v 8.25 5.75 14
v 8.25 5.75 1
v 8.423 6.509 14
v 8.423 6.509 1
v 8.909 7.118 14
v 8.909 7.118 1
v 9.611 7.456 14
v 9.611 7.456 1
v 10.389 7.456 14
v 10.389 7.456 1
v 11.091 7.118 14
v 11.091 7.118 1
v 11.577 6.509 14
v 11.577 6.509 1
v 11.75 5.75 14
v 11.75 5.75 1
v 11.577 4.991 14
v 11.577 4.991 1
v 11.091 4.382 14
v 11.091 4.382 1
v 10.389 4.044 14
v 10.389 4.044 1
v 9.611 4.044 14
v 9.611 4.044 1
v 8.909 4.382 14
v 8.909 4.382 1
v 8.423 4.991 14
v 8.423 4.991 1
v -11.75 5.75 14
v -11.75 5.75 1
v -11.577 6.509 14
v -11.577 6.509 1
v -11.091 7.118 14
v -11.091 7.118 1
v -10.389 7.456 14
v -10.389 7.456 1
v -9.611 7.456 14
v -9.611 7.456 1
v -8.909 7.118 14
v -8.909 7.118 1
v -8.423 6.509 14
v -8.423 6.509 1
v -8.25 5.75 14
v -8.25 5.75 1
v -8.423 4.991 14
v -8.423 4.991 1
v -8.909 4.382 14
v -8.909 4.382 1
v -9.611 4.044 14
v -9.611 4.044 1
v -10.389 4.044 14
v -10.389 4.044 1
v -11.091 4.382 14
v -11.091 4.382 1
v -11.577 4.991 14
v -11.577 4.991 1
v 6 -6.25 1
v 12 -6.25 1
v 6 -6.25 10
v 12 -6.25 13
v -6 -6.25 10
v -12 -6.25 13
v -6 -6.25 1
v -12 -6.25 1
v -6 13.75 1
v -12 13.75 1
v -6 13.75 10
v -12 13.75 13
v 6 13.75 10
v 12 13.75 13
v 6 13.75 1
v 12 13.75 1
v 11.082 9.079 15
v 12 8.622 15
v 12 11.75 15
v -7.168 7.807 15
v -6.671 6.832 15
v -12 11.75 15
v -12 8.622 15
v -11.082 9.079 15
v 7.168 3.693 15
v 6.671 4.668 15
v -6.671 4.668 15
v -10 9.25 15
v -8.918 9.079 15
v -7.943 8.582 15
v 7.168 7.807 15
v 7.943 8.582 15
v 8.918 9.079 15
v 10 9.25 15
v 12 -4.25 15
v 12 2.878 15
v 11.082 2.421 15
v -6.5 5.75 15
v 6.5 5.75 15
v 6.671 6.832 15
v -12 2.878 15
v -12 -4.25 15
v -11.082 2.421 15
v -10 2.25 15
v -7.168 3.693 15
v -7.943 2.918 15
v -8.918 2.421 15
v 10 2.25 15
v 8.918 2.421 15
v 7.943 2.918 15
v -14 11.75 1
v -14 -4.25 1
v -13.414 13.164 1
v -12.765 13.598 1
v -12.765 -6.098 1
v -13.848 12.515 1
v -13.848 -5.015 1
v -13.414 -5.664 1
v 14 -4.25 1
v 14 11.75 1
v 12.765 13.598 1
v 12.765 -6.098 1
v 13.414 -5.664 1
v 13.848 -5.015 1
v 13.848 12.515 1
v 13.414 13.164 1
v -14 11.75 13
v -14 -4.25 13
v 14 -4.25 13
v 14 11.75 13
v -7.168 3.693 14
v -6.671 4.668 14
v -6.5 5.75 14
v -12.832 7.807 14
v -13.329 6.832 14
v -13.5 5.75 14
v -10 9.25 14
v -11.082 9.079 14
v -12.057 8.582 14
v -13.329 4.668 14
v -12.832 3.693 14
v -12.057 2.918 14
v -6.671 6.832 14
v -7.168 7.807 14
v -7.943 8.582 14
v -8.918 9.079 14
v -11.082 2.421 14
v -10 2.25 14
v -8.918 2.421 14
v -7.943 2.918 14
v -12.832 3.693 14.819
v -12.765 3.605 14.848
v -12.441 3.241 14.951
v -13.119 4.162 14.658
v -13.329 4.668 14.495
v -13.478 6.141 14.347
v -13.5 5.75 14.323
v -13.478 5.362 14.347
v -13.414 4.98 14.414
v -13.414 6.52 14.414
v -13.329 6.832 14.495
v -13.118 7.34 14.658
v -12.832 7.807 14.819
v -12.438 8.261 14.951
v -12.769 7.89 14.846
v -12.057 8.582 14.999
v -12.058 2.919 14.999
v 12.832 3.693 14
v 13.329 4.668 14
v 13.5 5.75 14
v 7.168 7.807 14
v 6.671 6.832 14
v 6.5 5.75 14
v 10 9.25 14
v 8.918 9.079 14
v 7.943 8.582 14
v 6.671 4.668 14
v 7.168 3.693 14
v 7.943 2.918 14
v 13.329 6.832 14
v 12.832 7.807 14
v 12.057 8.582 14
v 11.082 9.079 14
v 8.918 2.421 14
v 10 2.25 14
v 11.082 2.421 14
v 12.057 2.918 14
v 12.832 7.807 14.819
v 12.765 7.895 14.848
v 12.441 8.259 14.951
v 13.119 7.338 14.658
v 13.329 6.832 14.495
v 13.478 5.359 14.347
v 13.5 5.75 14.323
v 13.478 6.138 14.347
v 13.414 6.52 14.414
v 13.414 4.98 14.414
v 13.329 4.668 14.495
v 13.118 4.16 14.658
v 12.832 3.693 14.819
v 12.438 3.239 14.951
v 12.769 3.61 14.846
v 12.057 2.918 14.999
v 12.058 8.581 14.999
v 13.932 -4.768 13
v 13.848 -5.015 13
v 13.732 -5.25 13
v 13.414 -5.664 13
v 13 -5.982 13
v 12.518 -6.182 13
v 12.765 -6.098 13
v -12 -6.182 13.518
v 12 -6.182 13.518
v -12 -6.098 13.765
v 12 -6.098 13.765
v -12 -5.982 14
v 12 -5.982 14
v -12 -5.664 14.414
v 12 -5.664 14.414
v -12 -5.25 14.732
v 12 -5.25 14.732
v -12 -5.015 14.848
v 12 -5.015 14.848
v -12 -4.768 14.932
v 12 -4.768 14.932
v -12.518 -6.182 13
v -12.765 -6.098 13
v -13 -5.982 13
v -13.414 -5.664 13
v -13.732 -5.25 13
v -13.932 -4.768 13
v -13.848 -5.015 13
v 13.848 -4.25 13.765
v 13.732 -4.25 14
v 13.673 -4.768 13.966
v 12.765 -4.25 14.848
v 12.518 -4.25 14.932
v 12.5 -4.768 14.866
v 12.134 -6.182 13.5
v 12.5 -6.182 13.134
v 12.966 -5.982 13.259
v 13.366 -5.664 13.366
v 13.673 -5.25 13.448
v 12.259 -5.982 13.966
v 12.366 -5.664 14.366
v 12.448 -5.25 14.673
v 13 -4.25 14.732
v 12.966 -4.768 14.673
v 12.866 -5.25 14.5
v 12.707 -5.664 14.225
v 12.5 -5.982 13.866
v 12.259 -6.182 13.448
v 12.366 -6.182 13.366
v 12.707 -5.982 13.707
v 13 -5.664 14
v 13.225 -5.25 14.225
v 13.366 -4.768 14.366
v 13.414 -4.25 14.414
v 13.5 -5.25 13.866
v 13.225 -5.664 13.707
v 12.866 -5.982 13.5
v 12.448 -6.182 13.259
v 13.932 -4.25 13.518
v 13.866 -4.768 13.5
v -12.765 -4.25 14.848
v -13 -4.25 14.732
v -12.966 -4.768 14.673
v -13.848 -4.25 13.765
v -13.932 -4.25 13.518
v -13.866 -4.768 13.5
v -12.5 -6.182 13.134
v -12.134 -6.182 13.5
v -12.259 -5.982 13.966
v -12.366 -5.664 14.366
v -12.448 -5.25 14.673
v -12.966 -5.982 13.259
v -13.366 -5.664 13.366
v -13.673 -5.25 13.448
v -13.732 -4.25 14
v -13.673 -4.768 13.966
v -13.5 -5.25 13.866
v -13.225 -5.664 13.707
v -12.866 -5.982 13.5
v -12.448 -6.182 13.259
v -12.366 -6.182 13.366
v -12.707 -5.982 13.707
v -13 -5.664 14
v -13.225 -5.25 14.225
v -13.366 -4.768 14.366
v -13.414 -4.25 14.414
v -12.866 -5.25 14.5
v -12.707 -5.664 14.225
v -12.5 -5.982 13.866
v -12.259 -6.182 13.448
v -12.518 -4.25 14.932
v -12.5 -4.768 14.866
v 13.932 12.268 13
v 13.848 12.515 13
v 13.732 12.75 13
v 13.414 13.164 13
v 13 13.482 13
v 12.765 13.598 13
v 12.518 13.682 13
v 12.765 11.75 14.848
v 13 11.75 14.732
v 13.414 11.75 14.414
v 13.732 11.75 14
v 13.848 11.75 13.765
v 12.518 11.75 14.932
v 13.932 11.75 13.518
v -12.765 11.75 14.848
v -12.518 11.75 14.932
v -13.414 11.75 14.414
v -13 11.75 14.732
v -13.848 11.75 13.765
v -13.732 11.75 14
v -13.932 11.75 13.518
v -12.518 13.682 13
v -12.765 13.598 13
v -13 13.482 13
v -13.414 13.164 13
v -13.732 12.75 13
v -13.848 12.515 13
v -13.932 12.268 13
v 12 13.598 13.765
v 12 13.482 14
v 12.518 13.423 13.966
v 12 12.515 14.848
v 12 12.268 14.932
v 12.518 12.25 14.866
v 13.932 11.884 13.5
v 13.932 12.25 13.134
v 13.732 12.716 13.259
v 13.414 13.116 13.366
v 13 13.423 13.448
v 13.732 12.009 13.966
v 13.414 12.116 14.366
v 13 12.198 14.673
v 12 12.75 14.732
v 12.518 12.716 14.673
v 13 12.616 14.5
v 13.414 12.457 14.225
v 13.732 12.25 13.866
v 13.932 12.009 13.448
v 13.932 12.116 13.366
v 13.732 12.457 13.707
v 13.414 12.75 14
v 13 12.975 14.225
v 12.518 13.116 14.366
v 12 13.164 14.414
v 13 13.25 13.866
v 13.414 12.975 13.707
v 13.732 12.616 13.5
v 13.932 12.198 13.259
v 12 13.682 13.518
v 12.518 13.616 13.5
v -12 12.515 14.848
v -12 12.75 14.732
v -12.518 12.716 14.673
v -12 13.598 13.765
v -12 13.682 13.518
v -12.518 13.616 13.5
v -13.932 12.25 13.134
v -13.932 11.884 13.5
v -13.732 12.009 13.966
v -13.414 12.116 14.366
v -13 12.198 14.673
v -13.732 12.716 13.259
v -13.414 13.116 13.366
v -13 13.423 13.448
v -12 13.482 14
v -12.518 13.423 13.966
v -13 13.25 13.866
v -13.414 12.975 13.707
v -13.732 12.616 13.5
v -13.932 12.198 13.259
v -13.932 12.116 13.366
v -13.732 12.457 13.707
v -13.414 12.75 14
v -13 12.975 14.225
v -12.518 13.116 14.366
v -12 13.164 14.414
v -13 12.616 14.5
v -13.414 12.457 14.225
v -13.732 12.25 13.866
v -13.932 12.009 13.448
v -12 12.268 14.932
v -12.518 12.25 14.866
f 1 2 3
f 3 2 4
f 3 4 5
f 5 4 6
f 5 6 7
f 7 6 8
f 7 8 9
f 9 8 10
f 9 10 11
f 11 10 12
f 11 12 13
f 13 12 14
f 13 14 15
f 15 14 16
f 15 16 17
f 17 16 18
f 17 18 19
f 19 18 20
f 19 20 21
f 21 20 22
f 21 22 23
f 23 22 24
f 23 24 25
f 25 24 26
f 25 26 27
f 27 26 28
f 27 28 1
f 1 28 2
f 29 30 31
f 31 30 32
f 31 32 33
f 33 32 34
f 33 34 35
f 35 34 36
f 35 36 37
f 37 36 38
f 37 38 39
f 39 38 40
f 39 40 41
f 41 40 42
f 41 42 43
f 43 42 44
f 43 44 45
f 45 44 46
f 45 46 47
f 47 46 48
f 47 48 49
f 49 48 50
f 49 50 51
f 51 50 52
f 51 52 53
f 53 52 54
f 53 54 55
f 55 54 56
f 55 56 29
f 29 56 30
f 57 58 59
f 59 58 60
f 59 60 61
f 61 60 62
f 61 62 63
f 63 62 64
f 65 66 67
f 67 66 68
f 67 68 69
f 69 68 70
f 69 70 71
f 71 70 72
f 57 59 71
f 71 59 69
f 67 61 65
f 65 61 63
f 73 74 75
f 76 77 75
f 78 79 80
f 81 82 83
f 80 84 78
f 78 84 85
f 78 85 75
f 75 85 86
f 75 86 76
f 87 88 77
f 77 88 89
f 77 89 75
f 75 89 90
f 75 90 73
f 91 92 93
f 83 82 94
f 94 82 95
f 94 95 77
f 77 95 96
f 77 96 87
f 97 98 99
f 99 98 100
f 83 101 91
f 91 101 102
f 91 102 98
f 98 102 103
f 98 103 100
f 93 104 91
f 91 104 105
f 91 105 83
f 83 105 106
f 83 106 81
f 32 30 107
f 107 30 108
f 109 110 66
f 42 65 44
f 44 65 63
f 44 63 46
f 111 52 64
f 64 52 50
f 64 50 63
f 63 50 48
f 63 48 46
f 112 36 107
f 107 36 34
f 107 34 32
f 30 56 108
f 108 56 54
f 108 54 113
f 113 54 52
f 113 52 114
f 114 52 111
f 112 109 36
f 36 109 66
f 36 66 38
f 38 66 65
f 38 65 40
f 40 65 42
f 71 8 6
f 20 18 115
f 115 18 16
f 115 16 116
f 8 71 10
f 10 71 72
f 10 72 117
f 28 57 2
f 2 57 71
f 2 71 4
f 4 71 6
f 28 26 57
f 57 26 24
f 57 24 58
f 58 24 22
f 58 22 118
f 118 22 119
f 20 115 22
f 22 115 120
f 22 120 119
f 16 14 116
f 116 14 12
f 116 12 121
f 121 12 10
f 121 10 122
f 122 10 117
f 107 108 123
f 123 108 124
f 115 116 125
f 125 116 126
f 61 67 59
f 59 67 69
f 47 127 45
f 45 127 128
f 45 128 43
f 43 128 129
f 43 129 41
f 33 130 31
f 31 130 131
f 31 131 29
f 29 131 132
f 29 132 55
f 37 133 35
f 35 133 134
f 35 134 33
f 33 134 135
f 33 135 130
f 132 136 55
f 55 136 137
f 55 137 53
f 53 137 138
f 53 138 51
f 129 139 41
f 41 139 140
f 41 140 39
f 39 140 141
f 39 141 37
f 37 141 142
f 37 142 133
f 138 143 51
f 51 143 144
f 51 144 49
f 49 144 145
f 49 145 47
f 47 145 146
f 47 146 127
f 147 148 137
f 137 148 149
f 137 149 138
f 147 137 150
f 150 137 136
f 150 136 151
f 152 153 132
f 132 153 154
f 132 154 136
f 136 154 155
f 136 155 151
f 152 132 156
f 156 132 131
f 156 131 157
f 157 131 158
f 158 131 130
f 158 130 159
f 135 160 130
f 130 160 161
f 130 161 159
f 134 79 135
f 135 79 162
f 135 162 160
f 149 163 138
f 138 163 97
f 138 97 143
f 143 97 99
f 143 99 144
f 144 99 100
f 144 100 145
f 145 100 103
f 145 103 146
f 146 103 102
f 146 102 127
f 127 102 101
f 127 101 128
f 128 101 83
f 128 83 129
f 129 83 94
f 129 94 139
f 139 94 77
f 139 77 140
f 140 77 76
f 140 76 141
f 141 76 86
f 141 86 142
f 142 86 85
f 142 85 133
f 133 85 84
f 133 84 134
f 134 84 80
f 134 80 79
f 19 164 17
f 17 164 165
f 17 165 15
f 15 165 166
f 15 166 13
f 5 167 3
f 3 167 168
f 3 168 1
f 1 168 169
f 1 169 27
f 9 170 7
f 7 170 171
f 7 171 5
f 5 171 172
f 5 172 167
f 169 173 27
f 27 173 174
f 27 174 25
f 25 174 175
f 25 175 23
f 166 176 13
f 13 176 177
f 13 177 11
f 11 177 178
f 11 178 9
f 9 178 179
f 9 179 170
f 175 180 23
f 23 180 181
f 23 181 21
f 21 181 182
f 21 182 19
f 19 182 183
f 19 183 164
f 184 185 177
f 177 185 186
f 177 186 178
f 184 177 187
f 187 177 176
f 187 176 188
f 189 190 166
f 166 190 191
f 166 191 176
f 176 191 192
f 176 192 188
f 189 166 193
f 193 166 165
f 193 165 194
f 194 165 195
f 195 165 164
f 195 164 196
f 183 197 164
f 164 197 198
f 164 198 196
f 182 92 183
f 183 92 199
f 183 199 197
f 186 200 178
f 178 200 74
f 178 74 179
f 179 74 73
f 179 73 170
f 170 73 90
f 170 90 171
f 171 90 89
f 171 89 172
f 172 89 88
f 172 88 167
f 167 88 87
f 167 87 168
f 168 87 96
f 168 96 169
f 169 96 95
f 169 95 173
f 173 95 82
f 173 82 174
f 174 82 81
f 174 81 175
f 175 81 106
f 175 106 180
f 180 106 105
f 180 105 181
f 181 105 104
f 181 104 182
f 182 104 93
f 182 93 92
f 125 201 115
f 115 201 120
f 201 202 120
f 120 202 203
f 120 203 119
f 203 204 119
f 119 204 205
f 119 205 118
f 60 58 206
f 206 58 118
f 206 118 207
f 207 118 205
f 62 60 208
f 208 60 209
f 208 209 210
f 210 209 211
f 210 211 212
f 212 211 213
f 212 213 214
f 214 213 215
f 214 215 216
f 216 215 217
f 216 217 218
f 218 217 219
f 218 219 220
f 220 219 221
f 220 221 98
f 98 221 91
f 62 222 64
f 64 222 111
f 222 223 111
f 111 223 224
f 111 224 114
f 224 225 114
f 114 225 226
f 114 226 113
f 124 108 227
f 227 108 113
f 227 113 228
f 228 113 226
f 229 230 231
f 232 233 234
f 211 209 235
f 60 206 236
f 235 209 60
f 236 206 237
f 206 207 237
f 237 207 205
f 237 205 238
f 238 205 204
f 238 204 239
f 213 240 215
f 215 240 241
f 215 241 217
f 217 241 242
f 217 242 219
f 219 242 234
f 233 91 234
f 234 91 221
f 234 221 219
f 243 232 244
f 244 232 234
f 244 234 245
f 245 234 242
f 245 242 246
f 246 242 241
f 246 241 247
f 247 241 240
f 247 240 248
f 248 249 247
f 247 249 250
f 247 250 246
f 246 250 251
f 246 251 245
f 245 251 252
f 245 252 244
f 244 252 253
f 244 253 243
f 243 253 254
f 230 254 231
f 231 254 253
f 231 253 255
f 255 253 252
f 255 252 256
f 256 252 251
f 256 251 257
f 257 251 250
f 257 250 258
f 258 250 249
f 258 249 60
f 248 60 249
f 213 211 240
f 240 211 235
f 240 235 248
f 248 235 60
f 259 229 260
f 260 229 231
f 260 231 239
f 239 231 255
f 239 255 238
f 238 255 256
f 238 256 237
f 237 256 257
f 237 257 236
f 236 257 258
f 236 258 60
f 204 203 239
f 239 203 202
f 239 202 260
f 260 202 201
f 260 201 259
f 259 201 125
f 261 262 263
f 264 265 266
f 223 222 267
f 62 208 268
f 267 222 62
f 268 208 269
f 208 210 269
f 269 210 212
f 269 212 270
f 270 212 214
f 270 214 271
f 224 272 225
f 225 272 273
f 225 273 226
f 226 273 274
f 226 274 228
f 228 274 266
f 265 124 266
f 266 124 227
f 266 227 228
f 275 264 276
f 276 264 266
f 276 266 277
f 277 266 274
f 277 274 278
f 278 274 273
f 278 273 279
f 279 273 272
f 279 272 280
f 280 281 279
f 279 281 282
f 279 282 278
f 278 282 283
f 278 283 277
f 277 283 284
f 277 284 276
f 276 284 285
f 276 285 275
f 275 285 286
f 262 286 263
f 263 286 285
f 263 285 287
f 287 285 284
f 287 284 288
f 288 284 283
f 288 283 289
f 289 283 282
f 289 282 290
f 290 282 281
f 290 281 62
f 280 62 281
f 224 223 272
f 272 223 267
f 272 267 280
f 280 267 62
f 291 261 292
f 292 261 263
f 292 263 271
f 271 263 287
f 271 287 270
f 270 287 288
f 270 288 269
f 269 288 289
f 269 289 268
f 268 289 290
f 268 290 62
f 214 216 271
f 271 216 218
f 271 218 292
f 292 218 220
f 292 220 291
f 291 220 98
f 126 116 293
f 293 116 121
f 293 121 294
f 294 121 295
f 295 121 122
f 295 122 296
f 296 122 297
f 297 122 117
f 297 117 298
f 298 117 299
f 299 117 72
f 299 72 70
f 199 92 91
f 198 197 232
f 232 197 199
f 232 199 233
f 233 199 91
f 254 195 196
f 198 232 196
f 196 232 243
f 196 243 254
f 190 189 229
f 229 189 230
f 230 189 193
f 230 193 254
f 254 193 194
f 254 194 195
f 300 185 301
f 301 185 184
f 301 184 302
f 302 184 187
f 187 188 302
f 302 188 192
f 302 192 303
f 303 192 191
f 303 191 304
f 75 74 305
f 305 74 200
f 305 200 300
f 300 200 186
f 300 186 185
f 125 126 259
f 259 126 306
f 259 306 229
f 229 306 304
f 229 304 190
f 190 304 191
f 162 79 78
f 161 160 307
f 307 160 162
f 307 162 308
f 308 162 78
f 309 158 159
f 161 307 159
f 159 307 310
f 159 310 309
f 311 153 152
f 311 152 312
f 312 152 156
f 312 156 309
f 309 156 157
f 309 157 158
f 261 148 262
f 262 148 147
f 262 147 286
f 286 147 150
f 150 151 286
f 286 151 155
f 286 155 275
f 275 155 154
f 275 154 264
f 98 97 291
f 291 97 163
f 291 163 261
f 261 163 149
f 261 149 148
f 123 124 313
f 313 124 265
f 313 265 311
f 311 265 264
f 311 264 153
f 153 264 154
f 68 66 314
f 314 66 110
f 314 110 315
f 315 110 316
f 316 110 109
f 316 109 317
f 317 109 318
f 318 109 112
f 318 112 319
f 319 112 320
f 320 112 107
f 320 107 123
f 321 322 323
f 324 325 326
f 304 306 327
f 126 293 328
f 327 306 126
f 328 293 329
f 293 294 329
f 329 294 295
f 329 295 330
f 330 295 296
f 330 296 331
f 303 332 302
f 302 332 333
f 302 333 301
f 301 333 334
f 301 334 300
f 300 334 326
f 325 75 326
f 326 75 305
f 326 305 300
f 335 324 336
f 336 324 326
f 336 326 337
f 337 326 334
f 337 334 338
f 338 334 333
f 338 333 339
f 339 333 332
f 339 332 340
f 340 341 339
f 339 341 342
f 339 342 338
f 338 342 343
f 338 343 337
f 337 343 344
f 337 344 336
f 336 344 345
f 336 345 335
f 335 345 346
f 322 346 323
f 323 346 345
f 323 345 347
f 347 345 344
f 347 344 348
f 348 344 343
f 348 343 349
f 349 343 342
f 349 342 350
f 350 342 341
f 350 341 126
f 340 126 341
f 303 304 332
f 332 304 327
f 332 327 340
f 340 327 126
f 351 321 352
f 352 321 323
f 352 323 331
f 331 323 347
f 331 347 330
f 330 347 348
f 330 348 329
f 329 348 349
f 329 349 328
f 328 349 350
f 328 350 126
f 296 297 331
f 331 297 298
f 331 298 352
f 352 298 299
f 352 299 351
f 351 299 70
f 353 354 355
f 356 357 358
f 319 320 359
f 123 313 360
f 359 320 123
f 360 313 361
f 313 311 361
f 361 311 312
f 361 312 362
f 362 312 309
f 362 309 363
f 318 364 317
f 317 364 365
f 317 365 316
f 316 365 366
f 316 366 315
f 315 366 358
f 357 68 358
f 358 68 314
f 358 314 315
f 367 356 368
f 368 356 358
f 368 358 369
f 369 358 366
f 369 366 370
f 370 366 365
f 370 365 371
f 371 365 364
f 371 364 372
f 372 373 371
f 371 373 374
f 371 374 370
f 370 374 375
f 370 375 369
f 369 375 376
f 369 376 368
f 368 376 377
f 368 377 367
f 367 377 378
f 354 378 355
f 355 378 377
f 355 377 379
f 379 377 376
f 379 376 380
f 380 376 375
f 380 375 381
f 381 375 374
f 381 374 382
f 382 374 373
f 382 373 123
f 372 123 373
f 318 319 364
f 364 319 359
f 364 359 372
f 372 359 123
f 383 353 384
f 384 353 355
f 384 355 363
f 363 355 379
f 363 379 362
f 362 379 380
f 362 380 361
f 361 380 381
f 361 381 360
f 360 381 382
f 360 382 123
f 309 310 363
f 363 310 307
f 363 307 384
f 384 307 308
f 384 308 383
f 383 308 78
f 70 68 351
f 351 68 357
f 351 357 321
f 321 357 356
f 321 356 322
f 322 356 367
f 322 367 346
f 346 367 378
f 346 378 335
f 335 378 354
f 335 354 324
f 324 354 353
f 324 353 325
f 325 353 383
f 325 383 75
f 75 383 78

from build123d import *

# Parameters (mm, degrees)
SKETCH1_W                = 42
SKETCH1_H                = 14
BOSS_EXTRUDE1_DEPTH      = 20
SKETCH2_W                = 11
SKETCH2_H                = 10
CUT_EXTRUDE1_DEPTH       = 33.202484376
SKETCH3_W                = 11
SKETCH3_H                = 10
CUT_EXTRUDE2_DEPTH       = 33.202484376
SKETCH4_W                = 12
SKETCH4_H                = 10
CUT_EXTRUDE3_DEPTH       = 33.202484376
F_4_0_4_DIAMETER_HOLE1_D = 4
FILLET1_R                = 1
SKETCH7_W                = 53.135320533
SKETCH7_H                = 18.013507302
CUT_EXTRUDE4_DEPTH       = 1.5
SKETCH8_W                = 12
SKETCH8_H                = 12.5
CUT_EXTRUDE5_DEPTH       = 1.5
SKETCH9_W                = 20
SKETCH9_H                = 20
BOSS_EXTRUDE2_DEPTH      = 1
SKETCH10_W               = 3.48641985
SKETCH10_H               = 13.666765812
CUT_EXTRUDE6_DEPTH       = 3
SKETCH11_W               = 4.358024812
SKETCH11_H               = 13.509876918
CUT_EXTRUDE7_DEPTH       = 3
BOSS_EXTRUDE3_START      = 0.5
SKETCH14_W               = 12
SKETCH14_H               = 12.5
SKETCH14_R               = 2
BOSS_EXTRUDE3_DEPTH      = 0.5
FILLET7_R                = 3
BOSS_EXTRUDE4_START      = -14
SKETCH15_W               = 4
SKETCH15_H               = 20
BOSS_EXTRUDE4_DEPTH      = 14
SKETCH16_W               = 13.925462325
SKETCH16_H               = 21.292387115
SKETCH16_W_2             = 9.897316219
SKETCH16_H_2             = 21.744987801
CUT_EXTRUDE8_DEPTH       = 30.241451742
SKETCH17_W               = 12
SKETCH17_H               = 7.5
CUT_EXTRUDE9_DEPTH       = 1.5
SKETCH18_W               = 29.147036291
SKETCH18_H               = 2.174846481
CUT_EXTRUDE10_DEPTH      = 5.897378098
SKETCH19_W               = 12
SKETCH19_H               = 20
BOSS_EXTRUDE5_DEPTH      = 1.5
SKETCH20_W               = 4
SKETCH20_H               = 1.602621902
BOSS_EXTRUDE6_DEPTH      = 1.5
SKETCH24_R               = 1.75
CUT_EXTRUDE11_DEPTH      = 14
SKETCH25_R               = 3.5
CUT_EXTRUDE12_DEPTH      = 1
FILLET8_R                = 2


with BuildPart() as part:
    # Sketch1 → Boss-Extrude1 (new body)
    with BuildSketch(Plane.XZ.offset(6.25)):
        with Locations((0, 7)):
            Rectangle(SKETCH1_W, SKETCH1_H)
    extrude(amount=-BOSS_EXTRUDE1_DEPTH)

    # Sketch2 → Cut-Extrude1 (cut, through all)
    with BuildSketch(Plane(origin=(0, 13.75, 0), x_dir=(-1, 0, 0), z_dir=(0, 1, 0))):
        with Locations((-15.5, 9)):
            Rectangle(SKETCH2_W, SKETCH2_H)
    extrude(amount=-CUT_EXTRUDE1_DEPTH, mode=Mode.SUBTRACT)

    # Sketch3 → Cut-Extrude2 (cut, through all)
    with BuildSketch(Plane(origin=(0, 13.75, 0), x_dir=(-1, 0, 0), z_dir=(0, 1, 0))):
        with Locations((15.5, 9)):
            Rectangle(SKETCH3_W, SKETCH3_H)
    extrude(amount=-CUT_EXTRUDE2_DEPTH, mode=Mode.SUBTRACT)

    # Sketch4 → Cut-Extrude3 (cut, through all)
    with BuildSketch(Plane(origin=(0, 13.75, 0), x_dir=(-1, 0, 0), z_dir=(0, 1, 0))):
        with Locations((0, 5)):
            Rectangle(SKETCH4_W, SKETCH4_H)
    extrude(amount=-CUT_EXTRUDE3_DEPTH, mode=Mode.SUBTRACT)

    # Ø4.0 (4) Diameter Hole1 (through all)
    with Locations(Plane.XY.offset(4)):
        with Locations((15, 0), (-15, 0)):
            Hole(F_4_0_4_DIAMETER_HOLE1_D / 2)

    # Fillet1
    fillet1_edges = [part.edges().sort_by_distance(p)[0] for p in [
        (-21, -6.25, 2),
        (-21, 13.75, 2),
        (21, -6.25, 2),
        (21, 13.75, 2),
    ]]
    fillet(fillet1_edges, radius=FILLET1_R)

    # Sketch7 → Cut-Extrude4 (cut)
    with BuildSketch(Plane(origin=(0, 0, 0), x_dir=(-1, 0, 0), z_dir=(0, 0, -1))):
        with Locations((2.896644391, -1.154131749)):
            Rectangle(SKETCH7_W, SKETCH7_H)
    extrude(amount=-CUT_EXTRUDE4_DEPTH, mode=Mode.SUBTRACT)

    # Sketch8 → Cut-Extrude5 (cut)
    with BuildSketch(Plane(origin=(0, 0, 10), x_dir=(-1, 0, 0), z_dir=(0, 0, -1))):
        Rectangle(SKETCH8_W, SKETCH8_H)
    extrude(amount=-CUT_EXTRUDE5_DEPTH, mode=Mode.SUBTRACT)

    # Sketch9 → Boss-Extrude2 (add)
    with BuildSketch(Plane.XY.offset(14)):
        with Locations((0, 3.75)):
            Rectangle(SKETCH9_W, SKETCH9_H)
    extrude(amount=BOSS_EXTRUDE2_DEPTH)

    # Sketch10 → Cut-Extrude6 (cut)
    with BuildSketch(Plane.ZY.offset(21)):
        with Locations((2.776320836, -0.252765439)):
            Rectangle(SKETCH10_W, SKETCH10_H)
    extrude(amount=-CUT_EXTRUDE6_DEPTH, mode=Mode.SUBTRACT)

    # Sketch11 → Cut-Extrude7 (cut)
    with BuildSketch(Plane(origin=(21, 0, 0), x_dir=(0, 0, -1), z_dir=(1, 0, 0))):
        with Locations((-2.462543049, -0.261481489)):
            Rectangle(SKETCH11_W, SKETCH11_H)
    extrude(amount=-CUT_EXTRUDE7_DEPTH, mode=Mode.SUBTRACT)

    # Sketch14 → Boss-Extrude3 (add)
    # profile 1 of 2: a face of its own
    with BuildSketch(Plane(origin=(0, 0, 1.5), x_dir=(-1, 0, 0), z_dir=(0, 0, -1)).offset(BOSS_EXTRUDE3_START)):
        with Locations((12, 0)):
            Rectangle(SKETCH14_W, SKETCH14_H)
        with Locations(Location((15, 0, 0), (0, 0, 180))):
            Circle(SKETCH14_R, mode=Mode.SUBTRACT)
    # profile 2 of 2: a face of its own
    with BuildSketch(Plane(origin=(0, 0, 1.5), x_dir=(-1, 0, 0), z_dir=(0, 0, -1)).offset(BOSS_EXTRUDE3_START)):
        with Locations((-12, 0)):
            Rectangle(SKETCH14_W, SKETCH14_H)
        with Locations(Location((-15, 0, 0), (0, 0, 180))):
            Circle(SKETCH14_R, mode=Mode.SUBTRACT)
    extrude(amount=-BOSS_EXTRUDE3_DEPTH)

    # Fillet7
    # the kernel refuses this fillet: 3 mm, written as the material it takes off along each edge
    with BuildSketch(Plane(origin=(-18, -6.25, 1.5), x_dir=(1, 0, 0), z_dir=(0, 0, 1))) as fillet7_piece_1:
        with BuildLine():
            CenterArc((FILLET7_R, FILLET7_R), FILLET7_R, 180, 90)
            Line((0, FILLET7_R), (0, 0))
            Line((0, 0), (FILLET7_R, 0))
        make_face()
    extrude(amount=10, mode=Mode.SUBTRACT)
    with BuildSketch(Plane(origin=(18, -6.25, 11.5), x_dir=(-1, 0, 0), z_dir=(0, 0, -1))) as fillet7_piece_2:
        with BuildLine():
            CenterArc((FILLET7_R, FILLET7_R), FILLET7_R, 180, 90)
            Line((0, FILLET7_R), (0, 0))
            Line((0, 0), (FILLET7_R, 0))
        make_face()
    extrude(amount=18, mode=Mode.SUBTRACT)
    with BuildSketch(Plane(origin=(-18, 6.25, -6.5), x_dir=(1, 0, 0), z_dir=(0, 0, 1))) as fillet7_piece_3:
        with BuildLine():
            CenterArc((FILLET7_R, -FILLET7_R), FILLET7_R, 90, 90)
            Line((0, -FILLET7_R), (0, 0))
            Line((0, 0), (FILLET7_R, 0))
        make_face()
    extrude(amount=8, mode=Mode.SUBTRACT)
    with BuildSketch(Plane(origin=(-18, -6.25, -6.5), x_dir=(1, 0, 0), z_dir=(0, 0, 1))) as fillet7_piece_4:
        with BuildLine():
            CenterArc((FILLET7_R, FILLET7_R), FILLET7_R, 180, 90)
            Line((0, FILLET7_R), (0, 0))
            Line((0, 0), (FILLET7_R, 0))
        make_face()
    extrude(amount=8, mode=Mode.SUBTRACT)

    # Sketch15 → Boss-Extrude4 (add)
    with BuildSketch(Plane.XY.offset(15).offset(BOSS_EXTRUDE4_START)):
        with Locations((-12, 3.75)):
            Rectangle(SKETCH15_W, SKETCH15_H)
        with Locations((12, 3.75)):
            Rectangle(SKETCH15_W, SKETCH15_H)
    extrude(amount=BOSS_EXTRUDE4_DEPTH)

    # Sketch16 → Cut-Extrude8 (cut, through all)
    with BuildSketch(Plane.XY.offset(15)):
        with Locations((20.962731162, 3.103806442)):
            Rectangle(SKETCH16_W, SKETCH16_H)
        with Locations((-18.94865811, 2.877506099)):
            Rectangle(SKETCH16_W_2, SKETCH16_H_2)
    extrude(amount=-CUT_EXTRUDE8_DEPTH, mode=Mode.SUBTRACT)

    # Sketch17 → Cut-Extrude9 (cut)
    with BuildSketch(Plane(origin=(0, 0, 10), x_dir=(-1, 0, 0), z_dir=(0, 0, -1))):
        with Locations((0, 10)):
            Rectangle(SKETCH17_W, SKETCH17_H)
    extrude(amount=-CUT_EXTRUDE9_DEPTH, mode=Mode.SUBTRACT)

    # Sketch18 → Cut-Extrude10 (cut)
    with BuildSketch(Plane(origin=(0, 7.852621902, 0), x_dir=(-1, 0, 0), z_dir=(0, -1, 0))):
        with Locations((-0.573518146, 0.087423241)):
            Rectangle(SKETCH18_W, SKETCH18_H)
    extrude(amount=-CUT_EXTRUDE10_DEPTH, mode=Mode.SUBTRACT)

    # Sketch19 → Boss-Extrude5 (add)
    with BuildSketch(Plane(origin=(0, 0, 11.5), x_dir=(-1, 0, 0), z_dir=(0, 0, -1))):
        with Locations((0, 3.75)):
            Rectangle(SKETCH19_W, SKETCH19_H)
    extrude(amount=BOSS_EXTRUDE5_DEPTH)

    # Sketch20 → Boss-Extrude6 (add)
    with BuildSketch(Plane(origin=(0, 0, 1), x_dir=(-1, 0, 0), z_dir=(0, 0, -1))):
        with Locations((-8, 7.051310951)):
            Rectangle(SKETCH20_W, SKETCH20_H)
        with Locations((8, 7.051310951)):
            Rectangle(SKETCH20_W, SKETCH20_H)
    extrude(amount=-BOSS_EXTRUDE6_DEPTH)

    # Sketch24 → Cut-Extrude11 (cut)
    with BuildSketch(Plane(origin=(0, 0, 1), x_dir=(-1, 0, 0), z_dir=(0, 0, -1))):
        with Locations((-10, 5.75)):
            Circle(SKETCH24_R)
        with Locations((10, 5.75)):
            Circle(SKETCH24_R)
    extrude(amount=-CUT_EXTRUDE11_DEPTH, mode=Mode.SUBTRACT)

    # Sketch25 → Cut-Extrude12 (cut)
    with BuildSketch(Plane.XY.offset(15)):
        with Locations((10, 5.75)):
            Circle(SKETCH25_R)
        with Locations((-10, 5.75)):
            Circle(SKETCH25_R)
    extrude(amount=-CUT_EXTRUDE12_DEPTH, mode=Mode.SUBTRACT)

    # Fillet8
    # the kernel refuses this fillet: 2 mm, written as the material it takes off along each edge
    with BuildSketch(Plane(origin=(12, -4.25, 13), x_dir=(0, 0, 1), z_dir=(1, 0, 0))) as fillet8_piece_1_section:
        Polygon((0, 0), (FILLET8_R, 0), (FILLET8_R, FILLET8_R), (0, FILLET8_R), align=None)
    fillet8_piece_1 = extrude(amount=FILLET8_R, mode=Mode.PRIVATE)
    fillet8_piece_1 = fillet8_piece_1 - Plane(origin=(12, -4.25, 13), x_dir=(0, 0.7071067811865475, -0.7071067811865475), z_dir=(1, 0, 0)) * Sphere(FILLET8_R, mode=Mode.PRIVATE)
    add(fillet8_piece_1, mode=Mode.SUBTRACT)
    with BuildSketch(Plane(origin=(-12, -4.25, 13), x_dir=(0, -1, 0), z_dir=(0, 0, 1))) as fillet8_piece_2_section:
        Polygon((0, 0), (FILLET8_R, 0), (FILLET8_R, -FILLET8_R), (0, -FILLET8_R), align=None)
    fillet8_piece_2 = extrude(amount=FILLET8_R, mode=Mode.PRIVATE)
    fillet8_piece_2 = fillet8_piece_2 - Plane(origin=(-12, -4.25, 13), x_dir=(0.7071067811865475, 0.7071067811865475, 0), z_dir=(0, 0, 1)) * Sphere(FILLET8_R, mode=Mode.PRIVATE)
    add(fillet8_piece_2, mode=Mode.SUBTRACT)
    with BuildSketch(Plane(origin=(-12, 11.75, 13), x_dir=(0, 0, 1), z_dir=(0, 1, 0))) as fillet8_piece_3_section:
        Polygon((0, 0), (FILLET8_R, 0), (FILLET8_R, -FILLET8_R), (0, -FILLET8_R), align=None)
    fillet8_piece_3 = extrude(amount=FILLET8_R, mode=Mode.PRIVATE)
    fillet8_piece_3 = fillet8_piece_3 - Plane(origin=(-12, 11.75, 13), x_dir=(0.7071067811865475, 0, -0.7071067811865475), z_dir=(0, 1, 0)) * Sphere(FILLET8_R, mode=Mode.PRIVATE)
    add(fillet8_piece_3, mode=Mode.SUBTRACT)
    with BuildSketch(Plane(origin=(12, 11.75, 13), x_dir=(0, 1, 0), z_dir=(1, 0, 0))) as fillet8_piece_4_section:
        Polygon((0, 0), (FILLET8_R, 0), (FILLET8_R, FILLET8_R), (0, FILLET8_R), align=None)
    fillet8_piece_4 = extrude(amount=FILLET8_R, mode=Mode.PRIVATE)
    fillet8_piece_4 = fillet8_piece_4 - Plane(origin=(12, 11.75, 13), x_dir=(0, -0.7071067811865475, -0.7071067811865475), z_dir=(1, 0, 0)) * Sphere(FILLET8_R, mode=Mode.PRIVATE)
    add(fillet8_piece_4, mode=Mode.SUBTRACT)
    with BuildSketch(Plane(origin=(12, -6.25, 15), x_dir=(0, 1, 0), z_dir=(-1, 0, 0))) as fillet8_piece_5:
        with BuildLine():
            CenterArc((FILLET8_R, FILLET8_R), FILLET8_R, 180, 90)
            Line((0, FILLET8_R), (0, 0))
            Line((0, 0), (FILLET8_R, 0))
        make_face()
    extrude(amount=24, mode=Mode.SUBTRACT)
    with BuildSketch(Plane(origin=(-12, 13.75, 15), x_dir=(0, 0, -1), z_dir=(1, 0, 0))) as fillet8_piece_6:
        with BuildLine():
            CenterArc((FILLET8_R, -FILLET8_R), FILLET8_R, 90, 90)
            Line((0, -FILLET8_R), (0, 0))
            Line((0, 0), (FILLET8_R, 0))
        make_face()
    extrude(amount=24, mode=Mode.SUBTRACT)
    with BuildSketch(Plane(origin=(-14, -6.25, -4), x_dir=(1, 0, 0), z_dir=(0, 0, 1))) as fillet8_piece_7:
        with BuildLine():
            CenterArc((FILLET8_R, FILLET8_R), FILLET8_R, 180, 90)
            Line((0, FILLET8_R), (0, 0))
            Line((0, 0), (FILLET8_R, 0))
        make_face()
    extrude(amount=17, mode=Mode.SUBTRACT)
    with BuildSketch(Plane(origin=(-14, 11.75, 15), x_dir=(1, 0, 0), z_dir=(0, -1, 0)), Plane(origin=(14, 11.75, 15), x_dir=(0, 0, -1), z_dir=(0, -1, 0))) as fillet8_piece_8:
        with BuildLine():
            CenterArc((FILLET8_R, -FILLET8_R), FILLET8_R, 90, 90)
            Line((0, -FILLET8_R), (0, 0))
            Line((0, 0), (FILLET8_R, 0))
        make_face()
    extrude(amount=16, mode=Mode.SUBTRACT)
    with BuildSketch(Plane(origin=(14, -6.25, 13), x_dir=(0, 1, 0), z_dir=(0, 0, -1)), Plane(origin=(14, 13.75, -4), x_dir=(0, -1, 0), z_dir=(0, 0, 1)), Plane(origin=(-14, 13.75, -4), x_dir=(1, 0, 0), z_dir=(0, 0, 1))) as fillet8_piece_9:
        with BuildLine():
            CenterArc((FILLET8_R, -FILLET8_R), FILLET8_R, 90, 90)
            Line((0, -FILLET8_R), (0, 0))
            Line((0, 0), (FILLET8_R, 0))
        make_face()
    extrude(amount=17, mode=Mode.SUBTRACT)


solid = part.part
